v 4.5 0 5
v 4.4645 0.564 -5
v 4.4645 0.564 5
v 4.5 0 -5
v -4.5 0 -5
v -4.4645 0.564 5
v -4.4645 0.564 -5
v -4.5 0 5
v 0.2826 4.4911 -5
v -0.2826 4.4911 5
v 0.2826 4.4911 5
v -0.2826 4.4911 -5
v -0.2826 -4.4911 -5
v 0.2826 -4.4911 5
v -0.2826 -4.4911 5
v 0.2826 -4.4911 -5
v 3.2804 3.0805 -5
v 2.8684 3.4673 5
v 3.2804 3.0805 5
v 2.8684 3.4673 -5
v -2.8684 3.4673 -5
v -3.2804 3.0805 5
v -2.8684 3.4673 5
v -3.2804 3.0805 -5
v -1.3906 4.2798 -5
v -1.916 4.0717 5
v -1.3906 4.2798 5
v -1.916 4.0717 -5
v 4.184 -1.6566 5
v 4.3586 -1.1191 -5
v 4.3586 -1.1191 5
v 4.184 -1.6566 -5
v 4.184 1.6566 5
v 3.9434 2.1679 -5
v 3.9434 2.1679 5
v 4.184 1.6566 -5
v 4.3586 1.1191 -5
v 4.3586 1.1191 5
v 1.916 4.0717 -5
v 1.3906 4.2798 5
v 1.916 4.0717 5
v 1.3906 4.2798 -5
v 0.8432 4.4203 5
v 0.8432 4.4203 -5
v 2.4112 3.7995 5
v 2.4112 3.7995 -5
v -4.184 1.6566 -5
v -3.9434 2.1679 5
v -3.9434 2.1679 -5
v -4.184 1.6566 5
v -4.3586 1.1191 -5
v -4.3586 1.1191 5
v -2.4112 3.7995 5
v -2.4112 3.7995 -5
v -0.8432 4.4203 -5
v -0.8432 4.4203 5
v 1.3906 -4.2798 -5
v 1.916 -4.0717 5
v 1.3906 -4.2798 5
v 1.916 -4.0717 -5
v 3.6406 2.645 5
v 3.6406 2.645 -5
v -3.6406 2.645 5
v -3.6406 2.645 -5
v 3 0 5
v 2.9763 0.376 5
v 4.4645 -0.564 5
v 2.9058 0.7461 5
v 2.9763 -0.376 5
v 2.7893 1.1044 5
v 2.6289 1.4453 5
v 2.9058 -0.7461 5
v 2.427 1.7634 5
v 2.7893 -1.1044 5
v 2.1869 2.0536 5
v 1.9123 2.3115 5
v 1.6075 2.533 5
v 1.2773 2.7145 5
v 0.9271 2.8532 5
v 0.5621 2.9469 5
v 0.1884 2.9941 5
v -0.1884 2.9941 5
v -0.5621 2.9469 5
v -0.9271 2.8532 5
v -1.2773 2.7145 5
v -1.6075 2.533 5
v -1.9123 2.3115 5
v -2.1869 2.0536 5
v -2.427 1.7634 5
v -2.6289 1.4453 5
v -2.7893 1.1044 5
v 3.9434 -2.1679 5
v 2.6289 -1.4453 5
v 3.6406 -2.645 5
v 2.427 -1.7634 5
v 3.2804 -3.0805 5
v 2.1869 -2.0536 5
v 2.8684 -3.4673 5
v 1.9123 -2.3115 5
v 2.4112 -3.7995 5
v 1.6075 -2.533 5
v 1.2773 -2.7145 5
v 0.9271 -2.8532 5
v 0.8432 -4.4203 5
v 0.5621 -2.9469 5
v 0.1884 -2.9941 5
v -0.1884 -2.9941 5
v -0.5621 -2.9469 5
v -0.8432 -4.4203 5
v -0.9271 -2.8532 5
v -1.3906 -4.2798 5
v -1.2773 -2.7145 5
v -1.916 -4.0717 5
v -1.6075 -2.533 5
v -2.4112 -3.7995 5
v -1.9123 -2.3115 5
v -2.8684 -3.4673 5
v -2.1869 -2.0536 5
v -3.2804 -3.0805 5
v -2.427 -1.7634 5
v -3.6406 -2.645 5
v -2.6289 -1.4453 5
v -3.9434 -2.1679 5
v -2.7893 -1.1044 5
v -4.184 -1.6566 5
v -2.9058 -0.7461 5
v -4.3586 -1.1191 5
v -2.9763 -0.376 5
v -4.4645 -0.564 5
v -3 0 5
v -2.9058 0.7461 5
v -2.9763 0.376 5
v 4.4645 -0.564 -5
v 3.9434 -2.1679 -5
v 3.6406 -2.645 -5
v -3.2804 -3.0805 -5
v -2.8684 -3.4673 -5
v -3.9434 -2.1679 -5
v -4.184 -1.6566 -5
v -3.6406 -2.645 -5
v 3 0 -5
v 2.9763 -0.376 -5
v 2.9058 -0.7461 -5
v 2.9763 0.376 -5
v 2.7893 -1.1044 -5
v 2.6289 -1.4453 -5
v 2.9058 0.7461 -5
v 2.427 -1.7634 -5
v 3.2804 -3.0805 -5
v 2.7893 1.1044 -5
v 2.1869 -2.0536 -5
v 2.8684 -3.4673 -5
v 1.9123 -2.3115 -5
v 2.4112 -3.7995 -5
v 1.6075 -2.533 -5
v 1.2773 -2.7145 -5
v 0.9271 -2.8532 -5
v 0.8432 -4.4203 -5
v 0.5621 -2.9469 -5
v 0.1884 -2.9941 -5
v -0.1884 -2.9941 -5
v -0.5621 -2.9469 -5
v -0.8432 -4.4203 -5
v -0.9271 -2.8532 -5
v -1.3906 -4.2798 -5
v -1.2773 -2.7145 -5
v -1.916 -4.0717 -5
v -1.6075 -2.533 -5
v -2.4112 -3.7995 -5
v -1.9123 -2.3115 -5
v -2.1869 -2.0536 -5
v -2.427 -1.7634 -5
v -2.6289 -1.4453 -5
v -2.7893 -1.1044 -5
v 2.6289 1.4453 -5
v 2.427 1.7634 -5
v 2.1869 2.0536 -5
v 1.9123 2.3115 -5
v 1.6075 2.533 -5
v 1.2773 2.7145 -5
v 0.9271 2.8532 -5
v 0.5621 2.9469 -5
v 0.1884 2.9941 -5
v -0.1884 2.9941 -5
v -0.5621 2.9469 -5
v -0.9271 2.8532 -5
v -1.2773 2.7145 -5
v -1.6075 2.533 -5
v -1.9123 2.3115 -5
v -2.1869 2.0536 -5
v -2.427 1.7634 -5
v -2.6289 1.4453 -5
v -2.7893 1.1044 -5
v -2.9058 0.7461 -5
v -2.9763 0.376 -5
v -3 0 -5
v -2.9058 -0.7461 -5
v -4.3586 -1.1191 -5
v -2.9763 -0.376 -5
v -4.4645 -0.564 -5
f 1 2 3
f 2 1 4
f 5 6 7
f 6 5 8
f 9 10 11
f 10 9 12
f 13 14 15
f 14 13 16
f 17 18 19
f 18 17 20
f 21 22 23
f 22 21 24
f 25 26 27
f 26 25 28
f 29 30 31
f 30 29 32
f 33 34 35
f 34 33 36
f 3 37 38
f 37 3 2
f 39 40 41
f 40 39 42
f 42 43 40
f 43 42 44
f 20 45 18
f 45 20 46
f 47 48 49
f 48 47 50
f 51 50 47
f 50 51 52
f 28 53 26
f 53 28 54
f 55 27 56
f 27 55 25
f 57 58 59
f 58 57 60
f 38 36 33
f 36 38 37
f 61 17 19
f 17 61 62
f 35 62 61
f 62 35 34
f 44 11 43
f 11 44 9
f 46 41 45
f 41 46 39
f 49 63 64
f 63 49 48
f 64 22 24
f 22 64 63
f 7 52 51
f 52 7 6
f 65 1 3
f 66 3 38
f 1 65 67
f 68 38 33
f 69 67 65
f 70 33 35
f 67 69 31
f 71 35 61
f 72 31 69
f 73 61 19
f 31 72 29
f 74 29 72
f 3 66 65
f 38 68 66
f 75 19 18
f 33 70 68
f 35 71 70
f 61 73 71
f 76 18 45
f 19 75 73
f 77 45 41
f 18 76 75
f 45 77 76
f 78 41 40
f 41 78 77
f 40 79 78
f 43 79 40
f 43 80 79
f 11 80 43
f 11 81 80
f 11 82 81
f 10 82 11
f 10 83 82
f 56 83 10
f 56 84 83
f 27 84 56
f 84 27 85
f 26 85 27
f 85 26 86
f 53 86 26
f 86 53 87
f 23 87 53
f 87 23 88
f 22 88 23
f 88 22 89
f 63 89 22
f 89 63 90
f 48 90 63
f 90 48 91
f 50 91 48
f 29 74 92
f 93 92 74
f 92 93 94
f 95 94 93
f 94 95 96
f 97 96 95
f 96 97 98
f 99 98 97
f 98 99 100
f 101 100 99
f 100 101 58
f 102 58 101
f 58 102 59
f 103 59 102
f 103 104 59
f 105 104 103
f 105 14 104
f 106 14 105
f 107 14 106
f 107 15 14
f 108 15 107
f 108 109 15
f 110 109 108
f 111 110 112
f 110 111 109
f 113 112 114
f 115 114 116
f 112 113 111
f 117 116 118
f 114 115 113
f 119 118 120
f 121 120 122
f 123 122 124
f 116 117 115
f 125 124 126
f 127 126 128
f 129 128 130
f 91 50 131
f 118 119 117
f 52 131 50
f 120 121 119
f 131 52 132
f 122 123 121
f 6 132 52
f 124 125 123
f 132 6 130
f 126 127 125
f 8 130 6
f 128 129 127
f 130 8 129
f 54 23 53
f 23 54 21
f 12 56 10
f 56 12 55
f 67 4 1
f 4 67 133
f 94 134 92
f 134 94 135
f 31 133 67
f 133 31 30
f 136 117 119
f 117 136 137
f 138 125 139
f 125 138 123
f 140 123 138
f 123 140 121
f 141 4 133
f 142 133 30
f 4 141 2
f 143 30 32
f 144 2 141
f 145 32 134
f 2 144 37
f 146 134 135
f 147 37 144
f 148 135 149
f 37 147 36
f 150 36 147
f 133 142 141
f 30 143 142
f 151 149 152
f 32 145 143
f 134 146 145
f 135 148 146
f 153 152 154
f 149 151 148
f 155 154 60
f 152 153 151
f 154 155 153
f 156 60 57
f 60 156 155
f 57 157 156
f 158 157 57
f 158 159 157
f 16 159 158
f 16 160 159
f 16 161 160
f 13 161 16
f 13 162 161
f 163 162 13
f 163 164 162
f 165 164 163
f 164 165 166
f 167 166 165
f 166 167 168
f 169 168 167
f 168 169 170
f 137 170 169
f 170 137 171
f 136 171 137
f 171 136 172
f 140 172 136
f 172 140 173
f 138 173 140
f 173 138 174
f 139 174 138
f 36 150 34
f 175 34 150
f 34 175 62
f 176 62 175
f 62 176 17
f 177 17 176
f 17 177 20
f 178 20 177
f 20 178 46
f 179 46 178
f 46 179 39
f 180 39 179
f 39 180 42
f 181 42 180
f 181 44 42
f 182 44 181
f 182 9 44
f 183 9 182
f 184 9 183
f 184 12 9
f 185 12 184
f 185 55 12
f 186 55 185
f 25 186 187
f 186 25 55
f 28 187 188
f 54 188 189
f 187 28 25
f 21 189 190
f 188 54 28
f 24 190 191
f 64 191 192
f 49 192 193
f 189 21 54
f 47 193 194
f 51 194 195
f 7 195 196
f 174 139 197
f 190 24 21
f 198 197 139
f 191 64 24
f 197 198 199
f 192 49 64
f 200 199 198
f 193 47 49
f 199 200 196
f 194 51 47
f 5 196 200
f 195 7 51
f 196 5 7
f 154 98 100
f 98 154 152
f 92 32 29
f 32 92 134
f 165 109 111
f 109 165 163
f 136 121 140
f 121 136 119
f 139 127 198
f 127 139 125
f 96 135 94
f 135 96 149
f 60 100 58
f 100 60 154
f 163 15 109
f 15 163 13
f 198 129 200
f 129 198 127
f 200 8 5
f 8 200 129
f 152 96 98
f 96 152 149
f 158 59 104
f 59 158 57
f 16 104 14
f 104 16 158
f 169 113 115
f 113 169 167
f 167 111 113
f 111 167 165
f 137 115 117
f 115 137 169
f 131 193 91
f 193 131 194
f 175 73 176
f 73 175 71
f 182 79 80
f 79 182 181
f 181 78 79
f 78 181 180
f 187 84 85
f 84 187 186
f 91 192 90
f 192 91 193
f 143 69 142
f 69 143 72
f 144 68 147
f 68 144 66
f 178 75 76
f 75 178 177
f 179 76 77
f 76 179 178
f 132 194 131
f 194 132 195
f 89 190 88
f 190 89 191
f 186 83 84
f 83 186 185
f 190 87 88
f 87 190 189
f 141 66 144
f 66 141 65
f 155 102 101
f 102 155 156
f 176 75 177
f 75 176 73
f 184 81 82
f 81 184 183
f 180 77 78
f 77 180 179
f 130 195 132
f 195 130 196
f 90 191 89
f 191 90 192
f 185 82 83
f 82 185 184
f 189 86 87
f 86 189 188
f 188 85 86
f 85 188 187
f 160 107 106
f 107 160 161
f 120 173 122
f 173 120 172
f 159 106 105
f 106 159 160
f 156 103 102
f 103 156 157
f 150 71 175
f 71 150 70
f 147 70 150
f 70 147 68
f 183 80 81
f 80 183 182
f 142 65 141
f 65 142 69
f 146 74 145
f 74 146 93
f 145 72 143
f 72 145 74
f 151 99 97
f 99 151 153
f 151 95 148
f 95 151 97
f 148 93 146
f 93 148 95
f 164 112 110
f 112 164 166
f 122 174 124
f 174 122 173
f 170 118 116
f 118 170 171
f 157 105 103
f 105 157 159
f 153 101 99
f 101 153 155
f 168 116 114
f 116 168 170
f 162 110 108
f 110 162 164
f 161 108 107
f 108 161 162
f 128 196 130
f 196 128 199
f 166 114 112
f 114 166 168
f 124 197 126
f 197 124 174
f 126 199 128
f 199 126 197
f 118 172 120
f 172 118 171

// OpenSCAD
$fn = 50;


difference() {
	union() {
		translate(v = [0, 0, -5.0000000000]) {
			cylinder(h = 10, r = 4.5000000000);
		}
	}
	union() {
		translate(v = [0, 0, -100.0000000000]) {
			cylinder(h = 200, r = 3.0000000000);
		}
	}
}
